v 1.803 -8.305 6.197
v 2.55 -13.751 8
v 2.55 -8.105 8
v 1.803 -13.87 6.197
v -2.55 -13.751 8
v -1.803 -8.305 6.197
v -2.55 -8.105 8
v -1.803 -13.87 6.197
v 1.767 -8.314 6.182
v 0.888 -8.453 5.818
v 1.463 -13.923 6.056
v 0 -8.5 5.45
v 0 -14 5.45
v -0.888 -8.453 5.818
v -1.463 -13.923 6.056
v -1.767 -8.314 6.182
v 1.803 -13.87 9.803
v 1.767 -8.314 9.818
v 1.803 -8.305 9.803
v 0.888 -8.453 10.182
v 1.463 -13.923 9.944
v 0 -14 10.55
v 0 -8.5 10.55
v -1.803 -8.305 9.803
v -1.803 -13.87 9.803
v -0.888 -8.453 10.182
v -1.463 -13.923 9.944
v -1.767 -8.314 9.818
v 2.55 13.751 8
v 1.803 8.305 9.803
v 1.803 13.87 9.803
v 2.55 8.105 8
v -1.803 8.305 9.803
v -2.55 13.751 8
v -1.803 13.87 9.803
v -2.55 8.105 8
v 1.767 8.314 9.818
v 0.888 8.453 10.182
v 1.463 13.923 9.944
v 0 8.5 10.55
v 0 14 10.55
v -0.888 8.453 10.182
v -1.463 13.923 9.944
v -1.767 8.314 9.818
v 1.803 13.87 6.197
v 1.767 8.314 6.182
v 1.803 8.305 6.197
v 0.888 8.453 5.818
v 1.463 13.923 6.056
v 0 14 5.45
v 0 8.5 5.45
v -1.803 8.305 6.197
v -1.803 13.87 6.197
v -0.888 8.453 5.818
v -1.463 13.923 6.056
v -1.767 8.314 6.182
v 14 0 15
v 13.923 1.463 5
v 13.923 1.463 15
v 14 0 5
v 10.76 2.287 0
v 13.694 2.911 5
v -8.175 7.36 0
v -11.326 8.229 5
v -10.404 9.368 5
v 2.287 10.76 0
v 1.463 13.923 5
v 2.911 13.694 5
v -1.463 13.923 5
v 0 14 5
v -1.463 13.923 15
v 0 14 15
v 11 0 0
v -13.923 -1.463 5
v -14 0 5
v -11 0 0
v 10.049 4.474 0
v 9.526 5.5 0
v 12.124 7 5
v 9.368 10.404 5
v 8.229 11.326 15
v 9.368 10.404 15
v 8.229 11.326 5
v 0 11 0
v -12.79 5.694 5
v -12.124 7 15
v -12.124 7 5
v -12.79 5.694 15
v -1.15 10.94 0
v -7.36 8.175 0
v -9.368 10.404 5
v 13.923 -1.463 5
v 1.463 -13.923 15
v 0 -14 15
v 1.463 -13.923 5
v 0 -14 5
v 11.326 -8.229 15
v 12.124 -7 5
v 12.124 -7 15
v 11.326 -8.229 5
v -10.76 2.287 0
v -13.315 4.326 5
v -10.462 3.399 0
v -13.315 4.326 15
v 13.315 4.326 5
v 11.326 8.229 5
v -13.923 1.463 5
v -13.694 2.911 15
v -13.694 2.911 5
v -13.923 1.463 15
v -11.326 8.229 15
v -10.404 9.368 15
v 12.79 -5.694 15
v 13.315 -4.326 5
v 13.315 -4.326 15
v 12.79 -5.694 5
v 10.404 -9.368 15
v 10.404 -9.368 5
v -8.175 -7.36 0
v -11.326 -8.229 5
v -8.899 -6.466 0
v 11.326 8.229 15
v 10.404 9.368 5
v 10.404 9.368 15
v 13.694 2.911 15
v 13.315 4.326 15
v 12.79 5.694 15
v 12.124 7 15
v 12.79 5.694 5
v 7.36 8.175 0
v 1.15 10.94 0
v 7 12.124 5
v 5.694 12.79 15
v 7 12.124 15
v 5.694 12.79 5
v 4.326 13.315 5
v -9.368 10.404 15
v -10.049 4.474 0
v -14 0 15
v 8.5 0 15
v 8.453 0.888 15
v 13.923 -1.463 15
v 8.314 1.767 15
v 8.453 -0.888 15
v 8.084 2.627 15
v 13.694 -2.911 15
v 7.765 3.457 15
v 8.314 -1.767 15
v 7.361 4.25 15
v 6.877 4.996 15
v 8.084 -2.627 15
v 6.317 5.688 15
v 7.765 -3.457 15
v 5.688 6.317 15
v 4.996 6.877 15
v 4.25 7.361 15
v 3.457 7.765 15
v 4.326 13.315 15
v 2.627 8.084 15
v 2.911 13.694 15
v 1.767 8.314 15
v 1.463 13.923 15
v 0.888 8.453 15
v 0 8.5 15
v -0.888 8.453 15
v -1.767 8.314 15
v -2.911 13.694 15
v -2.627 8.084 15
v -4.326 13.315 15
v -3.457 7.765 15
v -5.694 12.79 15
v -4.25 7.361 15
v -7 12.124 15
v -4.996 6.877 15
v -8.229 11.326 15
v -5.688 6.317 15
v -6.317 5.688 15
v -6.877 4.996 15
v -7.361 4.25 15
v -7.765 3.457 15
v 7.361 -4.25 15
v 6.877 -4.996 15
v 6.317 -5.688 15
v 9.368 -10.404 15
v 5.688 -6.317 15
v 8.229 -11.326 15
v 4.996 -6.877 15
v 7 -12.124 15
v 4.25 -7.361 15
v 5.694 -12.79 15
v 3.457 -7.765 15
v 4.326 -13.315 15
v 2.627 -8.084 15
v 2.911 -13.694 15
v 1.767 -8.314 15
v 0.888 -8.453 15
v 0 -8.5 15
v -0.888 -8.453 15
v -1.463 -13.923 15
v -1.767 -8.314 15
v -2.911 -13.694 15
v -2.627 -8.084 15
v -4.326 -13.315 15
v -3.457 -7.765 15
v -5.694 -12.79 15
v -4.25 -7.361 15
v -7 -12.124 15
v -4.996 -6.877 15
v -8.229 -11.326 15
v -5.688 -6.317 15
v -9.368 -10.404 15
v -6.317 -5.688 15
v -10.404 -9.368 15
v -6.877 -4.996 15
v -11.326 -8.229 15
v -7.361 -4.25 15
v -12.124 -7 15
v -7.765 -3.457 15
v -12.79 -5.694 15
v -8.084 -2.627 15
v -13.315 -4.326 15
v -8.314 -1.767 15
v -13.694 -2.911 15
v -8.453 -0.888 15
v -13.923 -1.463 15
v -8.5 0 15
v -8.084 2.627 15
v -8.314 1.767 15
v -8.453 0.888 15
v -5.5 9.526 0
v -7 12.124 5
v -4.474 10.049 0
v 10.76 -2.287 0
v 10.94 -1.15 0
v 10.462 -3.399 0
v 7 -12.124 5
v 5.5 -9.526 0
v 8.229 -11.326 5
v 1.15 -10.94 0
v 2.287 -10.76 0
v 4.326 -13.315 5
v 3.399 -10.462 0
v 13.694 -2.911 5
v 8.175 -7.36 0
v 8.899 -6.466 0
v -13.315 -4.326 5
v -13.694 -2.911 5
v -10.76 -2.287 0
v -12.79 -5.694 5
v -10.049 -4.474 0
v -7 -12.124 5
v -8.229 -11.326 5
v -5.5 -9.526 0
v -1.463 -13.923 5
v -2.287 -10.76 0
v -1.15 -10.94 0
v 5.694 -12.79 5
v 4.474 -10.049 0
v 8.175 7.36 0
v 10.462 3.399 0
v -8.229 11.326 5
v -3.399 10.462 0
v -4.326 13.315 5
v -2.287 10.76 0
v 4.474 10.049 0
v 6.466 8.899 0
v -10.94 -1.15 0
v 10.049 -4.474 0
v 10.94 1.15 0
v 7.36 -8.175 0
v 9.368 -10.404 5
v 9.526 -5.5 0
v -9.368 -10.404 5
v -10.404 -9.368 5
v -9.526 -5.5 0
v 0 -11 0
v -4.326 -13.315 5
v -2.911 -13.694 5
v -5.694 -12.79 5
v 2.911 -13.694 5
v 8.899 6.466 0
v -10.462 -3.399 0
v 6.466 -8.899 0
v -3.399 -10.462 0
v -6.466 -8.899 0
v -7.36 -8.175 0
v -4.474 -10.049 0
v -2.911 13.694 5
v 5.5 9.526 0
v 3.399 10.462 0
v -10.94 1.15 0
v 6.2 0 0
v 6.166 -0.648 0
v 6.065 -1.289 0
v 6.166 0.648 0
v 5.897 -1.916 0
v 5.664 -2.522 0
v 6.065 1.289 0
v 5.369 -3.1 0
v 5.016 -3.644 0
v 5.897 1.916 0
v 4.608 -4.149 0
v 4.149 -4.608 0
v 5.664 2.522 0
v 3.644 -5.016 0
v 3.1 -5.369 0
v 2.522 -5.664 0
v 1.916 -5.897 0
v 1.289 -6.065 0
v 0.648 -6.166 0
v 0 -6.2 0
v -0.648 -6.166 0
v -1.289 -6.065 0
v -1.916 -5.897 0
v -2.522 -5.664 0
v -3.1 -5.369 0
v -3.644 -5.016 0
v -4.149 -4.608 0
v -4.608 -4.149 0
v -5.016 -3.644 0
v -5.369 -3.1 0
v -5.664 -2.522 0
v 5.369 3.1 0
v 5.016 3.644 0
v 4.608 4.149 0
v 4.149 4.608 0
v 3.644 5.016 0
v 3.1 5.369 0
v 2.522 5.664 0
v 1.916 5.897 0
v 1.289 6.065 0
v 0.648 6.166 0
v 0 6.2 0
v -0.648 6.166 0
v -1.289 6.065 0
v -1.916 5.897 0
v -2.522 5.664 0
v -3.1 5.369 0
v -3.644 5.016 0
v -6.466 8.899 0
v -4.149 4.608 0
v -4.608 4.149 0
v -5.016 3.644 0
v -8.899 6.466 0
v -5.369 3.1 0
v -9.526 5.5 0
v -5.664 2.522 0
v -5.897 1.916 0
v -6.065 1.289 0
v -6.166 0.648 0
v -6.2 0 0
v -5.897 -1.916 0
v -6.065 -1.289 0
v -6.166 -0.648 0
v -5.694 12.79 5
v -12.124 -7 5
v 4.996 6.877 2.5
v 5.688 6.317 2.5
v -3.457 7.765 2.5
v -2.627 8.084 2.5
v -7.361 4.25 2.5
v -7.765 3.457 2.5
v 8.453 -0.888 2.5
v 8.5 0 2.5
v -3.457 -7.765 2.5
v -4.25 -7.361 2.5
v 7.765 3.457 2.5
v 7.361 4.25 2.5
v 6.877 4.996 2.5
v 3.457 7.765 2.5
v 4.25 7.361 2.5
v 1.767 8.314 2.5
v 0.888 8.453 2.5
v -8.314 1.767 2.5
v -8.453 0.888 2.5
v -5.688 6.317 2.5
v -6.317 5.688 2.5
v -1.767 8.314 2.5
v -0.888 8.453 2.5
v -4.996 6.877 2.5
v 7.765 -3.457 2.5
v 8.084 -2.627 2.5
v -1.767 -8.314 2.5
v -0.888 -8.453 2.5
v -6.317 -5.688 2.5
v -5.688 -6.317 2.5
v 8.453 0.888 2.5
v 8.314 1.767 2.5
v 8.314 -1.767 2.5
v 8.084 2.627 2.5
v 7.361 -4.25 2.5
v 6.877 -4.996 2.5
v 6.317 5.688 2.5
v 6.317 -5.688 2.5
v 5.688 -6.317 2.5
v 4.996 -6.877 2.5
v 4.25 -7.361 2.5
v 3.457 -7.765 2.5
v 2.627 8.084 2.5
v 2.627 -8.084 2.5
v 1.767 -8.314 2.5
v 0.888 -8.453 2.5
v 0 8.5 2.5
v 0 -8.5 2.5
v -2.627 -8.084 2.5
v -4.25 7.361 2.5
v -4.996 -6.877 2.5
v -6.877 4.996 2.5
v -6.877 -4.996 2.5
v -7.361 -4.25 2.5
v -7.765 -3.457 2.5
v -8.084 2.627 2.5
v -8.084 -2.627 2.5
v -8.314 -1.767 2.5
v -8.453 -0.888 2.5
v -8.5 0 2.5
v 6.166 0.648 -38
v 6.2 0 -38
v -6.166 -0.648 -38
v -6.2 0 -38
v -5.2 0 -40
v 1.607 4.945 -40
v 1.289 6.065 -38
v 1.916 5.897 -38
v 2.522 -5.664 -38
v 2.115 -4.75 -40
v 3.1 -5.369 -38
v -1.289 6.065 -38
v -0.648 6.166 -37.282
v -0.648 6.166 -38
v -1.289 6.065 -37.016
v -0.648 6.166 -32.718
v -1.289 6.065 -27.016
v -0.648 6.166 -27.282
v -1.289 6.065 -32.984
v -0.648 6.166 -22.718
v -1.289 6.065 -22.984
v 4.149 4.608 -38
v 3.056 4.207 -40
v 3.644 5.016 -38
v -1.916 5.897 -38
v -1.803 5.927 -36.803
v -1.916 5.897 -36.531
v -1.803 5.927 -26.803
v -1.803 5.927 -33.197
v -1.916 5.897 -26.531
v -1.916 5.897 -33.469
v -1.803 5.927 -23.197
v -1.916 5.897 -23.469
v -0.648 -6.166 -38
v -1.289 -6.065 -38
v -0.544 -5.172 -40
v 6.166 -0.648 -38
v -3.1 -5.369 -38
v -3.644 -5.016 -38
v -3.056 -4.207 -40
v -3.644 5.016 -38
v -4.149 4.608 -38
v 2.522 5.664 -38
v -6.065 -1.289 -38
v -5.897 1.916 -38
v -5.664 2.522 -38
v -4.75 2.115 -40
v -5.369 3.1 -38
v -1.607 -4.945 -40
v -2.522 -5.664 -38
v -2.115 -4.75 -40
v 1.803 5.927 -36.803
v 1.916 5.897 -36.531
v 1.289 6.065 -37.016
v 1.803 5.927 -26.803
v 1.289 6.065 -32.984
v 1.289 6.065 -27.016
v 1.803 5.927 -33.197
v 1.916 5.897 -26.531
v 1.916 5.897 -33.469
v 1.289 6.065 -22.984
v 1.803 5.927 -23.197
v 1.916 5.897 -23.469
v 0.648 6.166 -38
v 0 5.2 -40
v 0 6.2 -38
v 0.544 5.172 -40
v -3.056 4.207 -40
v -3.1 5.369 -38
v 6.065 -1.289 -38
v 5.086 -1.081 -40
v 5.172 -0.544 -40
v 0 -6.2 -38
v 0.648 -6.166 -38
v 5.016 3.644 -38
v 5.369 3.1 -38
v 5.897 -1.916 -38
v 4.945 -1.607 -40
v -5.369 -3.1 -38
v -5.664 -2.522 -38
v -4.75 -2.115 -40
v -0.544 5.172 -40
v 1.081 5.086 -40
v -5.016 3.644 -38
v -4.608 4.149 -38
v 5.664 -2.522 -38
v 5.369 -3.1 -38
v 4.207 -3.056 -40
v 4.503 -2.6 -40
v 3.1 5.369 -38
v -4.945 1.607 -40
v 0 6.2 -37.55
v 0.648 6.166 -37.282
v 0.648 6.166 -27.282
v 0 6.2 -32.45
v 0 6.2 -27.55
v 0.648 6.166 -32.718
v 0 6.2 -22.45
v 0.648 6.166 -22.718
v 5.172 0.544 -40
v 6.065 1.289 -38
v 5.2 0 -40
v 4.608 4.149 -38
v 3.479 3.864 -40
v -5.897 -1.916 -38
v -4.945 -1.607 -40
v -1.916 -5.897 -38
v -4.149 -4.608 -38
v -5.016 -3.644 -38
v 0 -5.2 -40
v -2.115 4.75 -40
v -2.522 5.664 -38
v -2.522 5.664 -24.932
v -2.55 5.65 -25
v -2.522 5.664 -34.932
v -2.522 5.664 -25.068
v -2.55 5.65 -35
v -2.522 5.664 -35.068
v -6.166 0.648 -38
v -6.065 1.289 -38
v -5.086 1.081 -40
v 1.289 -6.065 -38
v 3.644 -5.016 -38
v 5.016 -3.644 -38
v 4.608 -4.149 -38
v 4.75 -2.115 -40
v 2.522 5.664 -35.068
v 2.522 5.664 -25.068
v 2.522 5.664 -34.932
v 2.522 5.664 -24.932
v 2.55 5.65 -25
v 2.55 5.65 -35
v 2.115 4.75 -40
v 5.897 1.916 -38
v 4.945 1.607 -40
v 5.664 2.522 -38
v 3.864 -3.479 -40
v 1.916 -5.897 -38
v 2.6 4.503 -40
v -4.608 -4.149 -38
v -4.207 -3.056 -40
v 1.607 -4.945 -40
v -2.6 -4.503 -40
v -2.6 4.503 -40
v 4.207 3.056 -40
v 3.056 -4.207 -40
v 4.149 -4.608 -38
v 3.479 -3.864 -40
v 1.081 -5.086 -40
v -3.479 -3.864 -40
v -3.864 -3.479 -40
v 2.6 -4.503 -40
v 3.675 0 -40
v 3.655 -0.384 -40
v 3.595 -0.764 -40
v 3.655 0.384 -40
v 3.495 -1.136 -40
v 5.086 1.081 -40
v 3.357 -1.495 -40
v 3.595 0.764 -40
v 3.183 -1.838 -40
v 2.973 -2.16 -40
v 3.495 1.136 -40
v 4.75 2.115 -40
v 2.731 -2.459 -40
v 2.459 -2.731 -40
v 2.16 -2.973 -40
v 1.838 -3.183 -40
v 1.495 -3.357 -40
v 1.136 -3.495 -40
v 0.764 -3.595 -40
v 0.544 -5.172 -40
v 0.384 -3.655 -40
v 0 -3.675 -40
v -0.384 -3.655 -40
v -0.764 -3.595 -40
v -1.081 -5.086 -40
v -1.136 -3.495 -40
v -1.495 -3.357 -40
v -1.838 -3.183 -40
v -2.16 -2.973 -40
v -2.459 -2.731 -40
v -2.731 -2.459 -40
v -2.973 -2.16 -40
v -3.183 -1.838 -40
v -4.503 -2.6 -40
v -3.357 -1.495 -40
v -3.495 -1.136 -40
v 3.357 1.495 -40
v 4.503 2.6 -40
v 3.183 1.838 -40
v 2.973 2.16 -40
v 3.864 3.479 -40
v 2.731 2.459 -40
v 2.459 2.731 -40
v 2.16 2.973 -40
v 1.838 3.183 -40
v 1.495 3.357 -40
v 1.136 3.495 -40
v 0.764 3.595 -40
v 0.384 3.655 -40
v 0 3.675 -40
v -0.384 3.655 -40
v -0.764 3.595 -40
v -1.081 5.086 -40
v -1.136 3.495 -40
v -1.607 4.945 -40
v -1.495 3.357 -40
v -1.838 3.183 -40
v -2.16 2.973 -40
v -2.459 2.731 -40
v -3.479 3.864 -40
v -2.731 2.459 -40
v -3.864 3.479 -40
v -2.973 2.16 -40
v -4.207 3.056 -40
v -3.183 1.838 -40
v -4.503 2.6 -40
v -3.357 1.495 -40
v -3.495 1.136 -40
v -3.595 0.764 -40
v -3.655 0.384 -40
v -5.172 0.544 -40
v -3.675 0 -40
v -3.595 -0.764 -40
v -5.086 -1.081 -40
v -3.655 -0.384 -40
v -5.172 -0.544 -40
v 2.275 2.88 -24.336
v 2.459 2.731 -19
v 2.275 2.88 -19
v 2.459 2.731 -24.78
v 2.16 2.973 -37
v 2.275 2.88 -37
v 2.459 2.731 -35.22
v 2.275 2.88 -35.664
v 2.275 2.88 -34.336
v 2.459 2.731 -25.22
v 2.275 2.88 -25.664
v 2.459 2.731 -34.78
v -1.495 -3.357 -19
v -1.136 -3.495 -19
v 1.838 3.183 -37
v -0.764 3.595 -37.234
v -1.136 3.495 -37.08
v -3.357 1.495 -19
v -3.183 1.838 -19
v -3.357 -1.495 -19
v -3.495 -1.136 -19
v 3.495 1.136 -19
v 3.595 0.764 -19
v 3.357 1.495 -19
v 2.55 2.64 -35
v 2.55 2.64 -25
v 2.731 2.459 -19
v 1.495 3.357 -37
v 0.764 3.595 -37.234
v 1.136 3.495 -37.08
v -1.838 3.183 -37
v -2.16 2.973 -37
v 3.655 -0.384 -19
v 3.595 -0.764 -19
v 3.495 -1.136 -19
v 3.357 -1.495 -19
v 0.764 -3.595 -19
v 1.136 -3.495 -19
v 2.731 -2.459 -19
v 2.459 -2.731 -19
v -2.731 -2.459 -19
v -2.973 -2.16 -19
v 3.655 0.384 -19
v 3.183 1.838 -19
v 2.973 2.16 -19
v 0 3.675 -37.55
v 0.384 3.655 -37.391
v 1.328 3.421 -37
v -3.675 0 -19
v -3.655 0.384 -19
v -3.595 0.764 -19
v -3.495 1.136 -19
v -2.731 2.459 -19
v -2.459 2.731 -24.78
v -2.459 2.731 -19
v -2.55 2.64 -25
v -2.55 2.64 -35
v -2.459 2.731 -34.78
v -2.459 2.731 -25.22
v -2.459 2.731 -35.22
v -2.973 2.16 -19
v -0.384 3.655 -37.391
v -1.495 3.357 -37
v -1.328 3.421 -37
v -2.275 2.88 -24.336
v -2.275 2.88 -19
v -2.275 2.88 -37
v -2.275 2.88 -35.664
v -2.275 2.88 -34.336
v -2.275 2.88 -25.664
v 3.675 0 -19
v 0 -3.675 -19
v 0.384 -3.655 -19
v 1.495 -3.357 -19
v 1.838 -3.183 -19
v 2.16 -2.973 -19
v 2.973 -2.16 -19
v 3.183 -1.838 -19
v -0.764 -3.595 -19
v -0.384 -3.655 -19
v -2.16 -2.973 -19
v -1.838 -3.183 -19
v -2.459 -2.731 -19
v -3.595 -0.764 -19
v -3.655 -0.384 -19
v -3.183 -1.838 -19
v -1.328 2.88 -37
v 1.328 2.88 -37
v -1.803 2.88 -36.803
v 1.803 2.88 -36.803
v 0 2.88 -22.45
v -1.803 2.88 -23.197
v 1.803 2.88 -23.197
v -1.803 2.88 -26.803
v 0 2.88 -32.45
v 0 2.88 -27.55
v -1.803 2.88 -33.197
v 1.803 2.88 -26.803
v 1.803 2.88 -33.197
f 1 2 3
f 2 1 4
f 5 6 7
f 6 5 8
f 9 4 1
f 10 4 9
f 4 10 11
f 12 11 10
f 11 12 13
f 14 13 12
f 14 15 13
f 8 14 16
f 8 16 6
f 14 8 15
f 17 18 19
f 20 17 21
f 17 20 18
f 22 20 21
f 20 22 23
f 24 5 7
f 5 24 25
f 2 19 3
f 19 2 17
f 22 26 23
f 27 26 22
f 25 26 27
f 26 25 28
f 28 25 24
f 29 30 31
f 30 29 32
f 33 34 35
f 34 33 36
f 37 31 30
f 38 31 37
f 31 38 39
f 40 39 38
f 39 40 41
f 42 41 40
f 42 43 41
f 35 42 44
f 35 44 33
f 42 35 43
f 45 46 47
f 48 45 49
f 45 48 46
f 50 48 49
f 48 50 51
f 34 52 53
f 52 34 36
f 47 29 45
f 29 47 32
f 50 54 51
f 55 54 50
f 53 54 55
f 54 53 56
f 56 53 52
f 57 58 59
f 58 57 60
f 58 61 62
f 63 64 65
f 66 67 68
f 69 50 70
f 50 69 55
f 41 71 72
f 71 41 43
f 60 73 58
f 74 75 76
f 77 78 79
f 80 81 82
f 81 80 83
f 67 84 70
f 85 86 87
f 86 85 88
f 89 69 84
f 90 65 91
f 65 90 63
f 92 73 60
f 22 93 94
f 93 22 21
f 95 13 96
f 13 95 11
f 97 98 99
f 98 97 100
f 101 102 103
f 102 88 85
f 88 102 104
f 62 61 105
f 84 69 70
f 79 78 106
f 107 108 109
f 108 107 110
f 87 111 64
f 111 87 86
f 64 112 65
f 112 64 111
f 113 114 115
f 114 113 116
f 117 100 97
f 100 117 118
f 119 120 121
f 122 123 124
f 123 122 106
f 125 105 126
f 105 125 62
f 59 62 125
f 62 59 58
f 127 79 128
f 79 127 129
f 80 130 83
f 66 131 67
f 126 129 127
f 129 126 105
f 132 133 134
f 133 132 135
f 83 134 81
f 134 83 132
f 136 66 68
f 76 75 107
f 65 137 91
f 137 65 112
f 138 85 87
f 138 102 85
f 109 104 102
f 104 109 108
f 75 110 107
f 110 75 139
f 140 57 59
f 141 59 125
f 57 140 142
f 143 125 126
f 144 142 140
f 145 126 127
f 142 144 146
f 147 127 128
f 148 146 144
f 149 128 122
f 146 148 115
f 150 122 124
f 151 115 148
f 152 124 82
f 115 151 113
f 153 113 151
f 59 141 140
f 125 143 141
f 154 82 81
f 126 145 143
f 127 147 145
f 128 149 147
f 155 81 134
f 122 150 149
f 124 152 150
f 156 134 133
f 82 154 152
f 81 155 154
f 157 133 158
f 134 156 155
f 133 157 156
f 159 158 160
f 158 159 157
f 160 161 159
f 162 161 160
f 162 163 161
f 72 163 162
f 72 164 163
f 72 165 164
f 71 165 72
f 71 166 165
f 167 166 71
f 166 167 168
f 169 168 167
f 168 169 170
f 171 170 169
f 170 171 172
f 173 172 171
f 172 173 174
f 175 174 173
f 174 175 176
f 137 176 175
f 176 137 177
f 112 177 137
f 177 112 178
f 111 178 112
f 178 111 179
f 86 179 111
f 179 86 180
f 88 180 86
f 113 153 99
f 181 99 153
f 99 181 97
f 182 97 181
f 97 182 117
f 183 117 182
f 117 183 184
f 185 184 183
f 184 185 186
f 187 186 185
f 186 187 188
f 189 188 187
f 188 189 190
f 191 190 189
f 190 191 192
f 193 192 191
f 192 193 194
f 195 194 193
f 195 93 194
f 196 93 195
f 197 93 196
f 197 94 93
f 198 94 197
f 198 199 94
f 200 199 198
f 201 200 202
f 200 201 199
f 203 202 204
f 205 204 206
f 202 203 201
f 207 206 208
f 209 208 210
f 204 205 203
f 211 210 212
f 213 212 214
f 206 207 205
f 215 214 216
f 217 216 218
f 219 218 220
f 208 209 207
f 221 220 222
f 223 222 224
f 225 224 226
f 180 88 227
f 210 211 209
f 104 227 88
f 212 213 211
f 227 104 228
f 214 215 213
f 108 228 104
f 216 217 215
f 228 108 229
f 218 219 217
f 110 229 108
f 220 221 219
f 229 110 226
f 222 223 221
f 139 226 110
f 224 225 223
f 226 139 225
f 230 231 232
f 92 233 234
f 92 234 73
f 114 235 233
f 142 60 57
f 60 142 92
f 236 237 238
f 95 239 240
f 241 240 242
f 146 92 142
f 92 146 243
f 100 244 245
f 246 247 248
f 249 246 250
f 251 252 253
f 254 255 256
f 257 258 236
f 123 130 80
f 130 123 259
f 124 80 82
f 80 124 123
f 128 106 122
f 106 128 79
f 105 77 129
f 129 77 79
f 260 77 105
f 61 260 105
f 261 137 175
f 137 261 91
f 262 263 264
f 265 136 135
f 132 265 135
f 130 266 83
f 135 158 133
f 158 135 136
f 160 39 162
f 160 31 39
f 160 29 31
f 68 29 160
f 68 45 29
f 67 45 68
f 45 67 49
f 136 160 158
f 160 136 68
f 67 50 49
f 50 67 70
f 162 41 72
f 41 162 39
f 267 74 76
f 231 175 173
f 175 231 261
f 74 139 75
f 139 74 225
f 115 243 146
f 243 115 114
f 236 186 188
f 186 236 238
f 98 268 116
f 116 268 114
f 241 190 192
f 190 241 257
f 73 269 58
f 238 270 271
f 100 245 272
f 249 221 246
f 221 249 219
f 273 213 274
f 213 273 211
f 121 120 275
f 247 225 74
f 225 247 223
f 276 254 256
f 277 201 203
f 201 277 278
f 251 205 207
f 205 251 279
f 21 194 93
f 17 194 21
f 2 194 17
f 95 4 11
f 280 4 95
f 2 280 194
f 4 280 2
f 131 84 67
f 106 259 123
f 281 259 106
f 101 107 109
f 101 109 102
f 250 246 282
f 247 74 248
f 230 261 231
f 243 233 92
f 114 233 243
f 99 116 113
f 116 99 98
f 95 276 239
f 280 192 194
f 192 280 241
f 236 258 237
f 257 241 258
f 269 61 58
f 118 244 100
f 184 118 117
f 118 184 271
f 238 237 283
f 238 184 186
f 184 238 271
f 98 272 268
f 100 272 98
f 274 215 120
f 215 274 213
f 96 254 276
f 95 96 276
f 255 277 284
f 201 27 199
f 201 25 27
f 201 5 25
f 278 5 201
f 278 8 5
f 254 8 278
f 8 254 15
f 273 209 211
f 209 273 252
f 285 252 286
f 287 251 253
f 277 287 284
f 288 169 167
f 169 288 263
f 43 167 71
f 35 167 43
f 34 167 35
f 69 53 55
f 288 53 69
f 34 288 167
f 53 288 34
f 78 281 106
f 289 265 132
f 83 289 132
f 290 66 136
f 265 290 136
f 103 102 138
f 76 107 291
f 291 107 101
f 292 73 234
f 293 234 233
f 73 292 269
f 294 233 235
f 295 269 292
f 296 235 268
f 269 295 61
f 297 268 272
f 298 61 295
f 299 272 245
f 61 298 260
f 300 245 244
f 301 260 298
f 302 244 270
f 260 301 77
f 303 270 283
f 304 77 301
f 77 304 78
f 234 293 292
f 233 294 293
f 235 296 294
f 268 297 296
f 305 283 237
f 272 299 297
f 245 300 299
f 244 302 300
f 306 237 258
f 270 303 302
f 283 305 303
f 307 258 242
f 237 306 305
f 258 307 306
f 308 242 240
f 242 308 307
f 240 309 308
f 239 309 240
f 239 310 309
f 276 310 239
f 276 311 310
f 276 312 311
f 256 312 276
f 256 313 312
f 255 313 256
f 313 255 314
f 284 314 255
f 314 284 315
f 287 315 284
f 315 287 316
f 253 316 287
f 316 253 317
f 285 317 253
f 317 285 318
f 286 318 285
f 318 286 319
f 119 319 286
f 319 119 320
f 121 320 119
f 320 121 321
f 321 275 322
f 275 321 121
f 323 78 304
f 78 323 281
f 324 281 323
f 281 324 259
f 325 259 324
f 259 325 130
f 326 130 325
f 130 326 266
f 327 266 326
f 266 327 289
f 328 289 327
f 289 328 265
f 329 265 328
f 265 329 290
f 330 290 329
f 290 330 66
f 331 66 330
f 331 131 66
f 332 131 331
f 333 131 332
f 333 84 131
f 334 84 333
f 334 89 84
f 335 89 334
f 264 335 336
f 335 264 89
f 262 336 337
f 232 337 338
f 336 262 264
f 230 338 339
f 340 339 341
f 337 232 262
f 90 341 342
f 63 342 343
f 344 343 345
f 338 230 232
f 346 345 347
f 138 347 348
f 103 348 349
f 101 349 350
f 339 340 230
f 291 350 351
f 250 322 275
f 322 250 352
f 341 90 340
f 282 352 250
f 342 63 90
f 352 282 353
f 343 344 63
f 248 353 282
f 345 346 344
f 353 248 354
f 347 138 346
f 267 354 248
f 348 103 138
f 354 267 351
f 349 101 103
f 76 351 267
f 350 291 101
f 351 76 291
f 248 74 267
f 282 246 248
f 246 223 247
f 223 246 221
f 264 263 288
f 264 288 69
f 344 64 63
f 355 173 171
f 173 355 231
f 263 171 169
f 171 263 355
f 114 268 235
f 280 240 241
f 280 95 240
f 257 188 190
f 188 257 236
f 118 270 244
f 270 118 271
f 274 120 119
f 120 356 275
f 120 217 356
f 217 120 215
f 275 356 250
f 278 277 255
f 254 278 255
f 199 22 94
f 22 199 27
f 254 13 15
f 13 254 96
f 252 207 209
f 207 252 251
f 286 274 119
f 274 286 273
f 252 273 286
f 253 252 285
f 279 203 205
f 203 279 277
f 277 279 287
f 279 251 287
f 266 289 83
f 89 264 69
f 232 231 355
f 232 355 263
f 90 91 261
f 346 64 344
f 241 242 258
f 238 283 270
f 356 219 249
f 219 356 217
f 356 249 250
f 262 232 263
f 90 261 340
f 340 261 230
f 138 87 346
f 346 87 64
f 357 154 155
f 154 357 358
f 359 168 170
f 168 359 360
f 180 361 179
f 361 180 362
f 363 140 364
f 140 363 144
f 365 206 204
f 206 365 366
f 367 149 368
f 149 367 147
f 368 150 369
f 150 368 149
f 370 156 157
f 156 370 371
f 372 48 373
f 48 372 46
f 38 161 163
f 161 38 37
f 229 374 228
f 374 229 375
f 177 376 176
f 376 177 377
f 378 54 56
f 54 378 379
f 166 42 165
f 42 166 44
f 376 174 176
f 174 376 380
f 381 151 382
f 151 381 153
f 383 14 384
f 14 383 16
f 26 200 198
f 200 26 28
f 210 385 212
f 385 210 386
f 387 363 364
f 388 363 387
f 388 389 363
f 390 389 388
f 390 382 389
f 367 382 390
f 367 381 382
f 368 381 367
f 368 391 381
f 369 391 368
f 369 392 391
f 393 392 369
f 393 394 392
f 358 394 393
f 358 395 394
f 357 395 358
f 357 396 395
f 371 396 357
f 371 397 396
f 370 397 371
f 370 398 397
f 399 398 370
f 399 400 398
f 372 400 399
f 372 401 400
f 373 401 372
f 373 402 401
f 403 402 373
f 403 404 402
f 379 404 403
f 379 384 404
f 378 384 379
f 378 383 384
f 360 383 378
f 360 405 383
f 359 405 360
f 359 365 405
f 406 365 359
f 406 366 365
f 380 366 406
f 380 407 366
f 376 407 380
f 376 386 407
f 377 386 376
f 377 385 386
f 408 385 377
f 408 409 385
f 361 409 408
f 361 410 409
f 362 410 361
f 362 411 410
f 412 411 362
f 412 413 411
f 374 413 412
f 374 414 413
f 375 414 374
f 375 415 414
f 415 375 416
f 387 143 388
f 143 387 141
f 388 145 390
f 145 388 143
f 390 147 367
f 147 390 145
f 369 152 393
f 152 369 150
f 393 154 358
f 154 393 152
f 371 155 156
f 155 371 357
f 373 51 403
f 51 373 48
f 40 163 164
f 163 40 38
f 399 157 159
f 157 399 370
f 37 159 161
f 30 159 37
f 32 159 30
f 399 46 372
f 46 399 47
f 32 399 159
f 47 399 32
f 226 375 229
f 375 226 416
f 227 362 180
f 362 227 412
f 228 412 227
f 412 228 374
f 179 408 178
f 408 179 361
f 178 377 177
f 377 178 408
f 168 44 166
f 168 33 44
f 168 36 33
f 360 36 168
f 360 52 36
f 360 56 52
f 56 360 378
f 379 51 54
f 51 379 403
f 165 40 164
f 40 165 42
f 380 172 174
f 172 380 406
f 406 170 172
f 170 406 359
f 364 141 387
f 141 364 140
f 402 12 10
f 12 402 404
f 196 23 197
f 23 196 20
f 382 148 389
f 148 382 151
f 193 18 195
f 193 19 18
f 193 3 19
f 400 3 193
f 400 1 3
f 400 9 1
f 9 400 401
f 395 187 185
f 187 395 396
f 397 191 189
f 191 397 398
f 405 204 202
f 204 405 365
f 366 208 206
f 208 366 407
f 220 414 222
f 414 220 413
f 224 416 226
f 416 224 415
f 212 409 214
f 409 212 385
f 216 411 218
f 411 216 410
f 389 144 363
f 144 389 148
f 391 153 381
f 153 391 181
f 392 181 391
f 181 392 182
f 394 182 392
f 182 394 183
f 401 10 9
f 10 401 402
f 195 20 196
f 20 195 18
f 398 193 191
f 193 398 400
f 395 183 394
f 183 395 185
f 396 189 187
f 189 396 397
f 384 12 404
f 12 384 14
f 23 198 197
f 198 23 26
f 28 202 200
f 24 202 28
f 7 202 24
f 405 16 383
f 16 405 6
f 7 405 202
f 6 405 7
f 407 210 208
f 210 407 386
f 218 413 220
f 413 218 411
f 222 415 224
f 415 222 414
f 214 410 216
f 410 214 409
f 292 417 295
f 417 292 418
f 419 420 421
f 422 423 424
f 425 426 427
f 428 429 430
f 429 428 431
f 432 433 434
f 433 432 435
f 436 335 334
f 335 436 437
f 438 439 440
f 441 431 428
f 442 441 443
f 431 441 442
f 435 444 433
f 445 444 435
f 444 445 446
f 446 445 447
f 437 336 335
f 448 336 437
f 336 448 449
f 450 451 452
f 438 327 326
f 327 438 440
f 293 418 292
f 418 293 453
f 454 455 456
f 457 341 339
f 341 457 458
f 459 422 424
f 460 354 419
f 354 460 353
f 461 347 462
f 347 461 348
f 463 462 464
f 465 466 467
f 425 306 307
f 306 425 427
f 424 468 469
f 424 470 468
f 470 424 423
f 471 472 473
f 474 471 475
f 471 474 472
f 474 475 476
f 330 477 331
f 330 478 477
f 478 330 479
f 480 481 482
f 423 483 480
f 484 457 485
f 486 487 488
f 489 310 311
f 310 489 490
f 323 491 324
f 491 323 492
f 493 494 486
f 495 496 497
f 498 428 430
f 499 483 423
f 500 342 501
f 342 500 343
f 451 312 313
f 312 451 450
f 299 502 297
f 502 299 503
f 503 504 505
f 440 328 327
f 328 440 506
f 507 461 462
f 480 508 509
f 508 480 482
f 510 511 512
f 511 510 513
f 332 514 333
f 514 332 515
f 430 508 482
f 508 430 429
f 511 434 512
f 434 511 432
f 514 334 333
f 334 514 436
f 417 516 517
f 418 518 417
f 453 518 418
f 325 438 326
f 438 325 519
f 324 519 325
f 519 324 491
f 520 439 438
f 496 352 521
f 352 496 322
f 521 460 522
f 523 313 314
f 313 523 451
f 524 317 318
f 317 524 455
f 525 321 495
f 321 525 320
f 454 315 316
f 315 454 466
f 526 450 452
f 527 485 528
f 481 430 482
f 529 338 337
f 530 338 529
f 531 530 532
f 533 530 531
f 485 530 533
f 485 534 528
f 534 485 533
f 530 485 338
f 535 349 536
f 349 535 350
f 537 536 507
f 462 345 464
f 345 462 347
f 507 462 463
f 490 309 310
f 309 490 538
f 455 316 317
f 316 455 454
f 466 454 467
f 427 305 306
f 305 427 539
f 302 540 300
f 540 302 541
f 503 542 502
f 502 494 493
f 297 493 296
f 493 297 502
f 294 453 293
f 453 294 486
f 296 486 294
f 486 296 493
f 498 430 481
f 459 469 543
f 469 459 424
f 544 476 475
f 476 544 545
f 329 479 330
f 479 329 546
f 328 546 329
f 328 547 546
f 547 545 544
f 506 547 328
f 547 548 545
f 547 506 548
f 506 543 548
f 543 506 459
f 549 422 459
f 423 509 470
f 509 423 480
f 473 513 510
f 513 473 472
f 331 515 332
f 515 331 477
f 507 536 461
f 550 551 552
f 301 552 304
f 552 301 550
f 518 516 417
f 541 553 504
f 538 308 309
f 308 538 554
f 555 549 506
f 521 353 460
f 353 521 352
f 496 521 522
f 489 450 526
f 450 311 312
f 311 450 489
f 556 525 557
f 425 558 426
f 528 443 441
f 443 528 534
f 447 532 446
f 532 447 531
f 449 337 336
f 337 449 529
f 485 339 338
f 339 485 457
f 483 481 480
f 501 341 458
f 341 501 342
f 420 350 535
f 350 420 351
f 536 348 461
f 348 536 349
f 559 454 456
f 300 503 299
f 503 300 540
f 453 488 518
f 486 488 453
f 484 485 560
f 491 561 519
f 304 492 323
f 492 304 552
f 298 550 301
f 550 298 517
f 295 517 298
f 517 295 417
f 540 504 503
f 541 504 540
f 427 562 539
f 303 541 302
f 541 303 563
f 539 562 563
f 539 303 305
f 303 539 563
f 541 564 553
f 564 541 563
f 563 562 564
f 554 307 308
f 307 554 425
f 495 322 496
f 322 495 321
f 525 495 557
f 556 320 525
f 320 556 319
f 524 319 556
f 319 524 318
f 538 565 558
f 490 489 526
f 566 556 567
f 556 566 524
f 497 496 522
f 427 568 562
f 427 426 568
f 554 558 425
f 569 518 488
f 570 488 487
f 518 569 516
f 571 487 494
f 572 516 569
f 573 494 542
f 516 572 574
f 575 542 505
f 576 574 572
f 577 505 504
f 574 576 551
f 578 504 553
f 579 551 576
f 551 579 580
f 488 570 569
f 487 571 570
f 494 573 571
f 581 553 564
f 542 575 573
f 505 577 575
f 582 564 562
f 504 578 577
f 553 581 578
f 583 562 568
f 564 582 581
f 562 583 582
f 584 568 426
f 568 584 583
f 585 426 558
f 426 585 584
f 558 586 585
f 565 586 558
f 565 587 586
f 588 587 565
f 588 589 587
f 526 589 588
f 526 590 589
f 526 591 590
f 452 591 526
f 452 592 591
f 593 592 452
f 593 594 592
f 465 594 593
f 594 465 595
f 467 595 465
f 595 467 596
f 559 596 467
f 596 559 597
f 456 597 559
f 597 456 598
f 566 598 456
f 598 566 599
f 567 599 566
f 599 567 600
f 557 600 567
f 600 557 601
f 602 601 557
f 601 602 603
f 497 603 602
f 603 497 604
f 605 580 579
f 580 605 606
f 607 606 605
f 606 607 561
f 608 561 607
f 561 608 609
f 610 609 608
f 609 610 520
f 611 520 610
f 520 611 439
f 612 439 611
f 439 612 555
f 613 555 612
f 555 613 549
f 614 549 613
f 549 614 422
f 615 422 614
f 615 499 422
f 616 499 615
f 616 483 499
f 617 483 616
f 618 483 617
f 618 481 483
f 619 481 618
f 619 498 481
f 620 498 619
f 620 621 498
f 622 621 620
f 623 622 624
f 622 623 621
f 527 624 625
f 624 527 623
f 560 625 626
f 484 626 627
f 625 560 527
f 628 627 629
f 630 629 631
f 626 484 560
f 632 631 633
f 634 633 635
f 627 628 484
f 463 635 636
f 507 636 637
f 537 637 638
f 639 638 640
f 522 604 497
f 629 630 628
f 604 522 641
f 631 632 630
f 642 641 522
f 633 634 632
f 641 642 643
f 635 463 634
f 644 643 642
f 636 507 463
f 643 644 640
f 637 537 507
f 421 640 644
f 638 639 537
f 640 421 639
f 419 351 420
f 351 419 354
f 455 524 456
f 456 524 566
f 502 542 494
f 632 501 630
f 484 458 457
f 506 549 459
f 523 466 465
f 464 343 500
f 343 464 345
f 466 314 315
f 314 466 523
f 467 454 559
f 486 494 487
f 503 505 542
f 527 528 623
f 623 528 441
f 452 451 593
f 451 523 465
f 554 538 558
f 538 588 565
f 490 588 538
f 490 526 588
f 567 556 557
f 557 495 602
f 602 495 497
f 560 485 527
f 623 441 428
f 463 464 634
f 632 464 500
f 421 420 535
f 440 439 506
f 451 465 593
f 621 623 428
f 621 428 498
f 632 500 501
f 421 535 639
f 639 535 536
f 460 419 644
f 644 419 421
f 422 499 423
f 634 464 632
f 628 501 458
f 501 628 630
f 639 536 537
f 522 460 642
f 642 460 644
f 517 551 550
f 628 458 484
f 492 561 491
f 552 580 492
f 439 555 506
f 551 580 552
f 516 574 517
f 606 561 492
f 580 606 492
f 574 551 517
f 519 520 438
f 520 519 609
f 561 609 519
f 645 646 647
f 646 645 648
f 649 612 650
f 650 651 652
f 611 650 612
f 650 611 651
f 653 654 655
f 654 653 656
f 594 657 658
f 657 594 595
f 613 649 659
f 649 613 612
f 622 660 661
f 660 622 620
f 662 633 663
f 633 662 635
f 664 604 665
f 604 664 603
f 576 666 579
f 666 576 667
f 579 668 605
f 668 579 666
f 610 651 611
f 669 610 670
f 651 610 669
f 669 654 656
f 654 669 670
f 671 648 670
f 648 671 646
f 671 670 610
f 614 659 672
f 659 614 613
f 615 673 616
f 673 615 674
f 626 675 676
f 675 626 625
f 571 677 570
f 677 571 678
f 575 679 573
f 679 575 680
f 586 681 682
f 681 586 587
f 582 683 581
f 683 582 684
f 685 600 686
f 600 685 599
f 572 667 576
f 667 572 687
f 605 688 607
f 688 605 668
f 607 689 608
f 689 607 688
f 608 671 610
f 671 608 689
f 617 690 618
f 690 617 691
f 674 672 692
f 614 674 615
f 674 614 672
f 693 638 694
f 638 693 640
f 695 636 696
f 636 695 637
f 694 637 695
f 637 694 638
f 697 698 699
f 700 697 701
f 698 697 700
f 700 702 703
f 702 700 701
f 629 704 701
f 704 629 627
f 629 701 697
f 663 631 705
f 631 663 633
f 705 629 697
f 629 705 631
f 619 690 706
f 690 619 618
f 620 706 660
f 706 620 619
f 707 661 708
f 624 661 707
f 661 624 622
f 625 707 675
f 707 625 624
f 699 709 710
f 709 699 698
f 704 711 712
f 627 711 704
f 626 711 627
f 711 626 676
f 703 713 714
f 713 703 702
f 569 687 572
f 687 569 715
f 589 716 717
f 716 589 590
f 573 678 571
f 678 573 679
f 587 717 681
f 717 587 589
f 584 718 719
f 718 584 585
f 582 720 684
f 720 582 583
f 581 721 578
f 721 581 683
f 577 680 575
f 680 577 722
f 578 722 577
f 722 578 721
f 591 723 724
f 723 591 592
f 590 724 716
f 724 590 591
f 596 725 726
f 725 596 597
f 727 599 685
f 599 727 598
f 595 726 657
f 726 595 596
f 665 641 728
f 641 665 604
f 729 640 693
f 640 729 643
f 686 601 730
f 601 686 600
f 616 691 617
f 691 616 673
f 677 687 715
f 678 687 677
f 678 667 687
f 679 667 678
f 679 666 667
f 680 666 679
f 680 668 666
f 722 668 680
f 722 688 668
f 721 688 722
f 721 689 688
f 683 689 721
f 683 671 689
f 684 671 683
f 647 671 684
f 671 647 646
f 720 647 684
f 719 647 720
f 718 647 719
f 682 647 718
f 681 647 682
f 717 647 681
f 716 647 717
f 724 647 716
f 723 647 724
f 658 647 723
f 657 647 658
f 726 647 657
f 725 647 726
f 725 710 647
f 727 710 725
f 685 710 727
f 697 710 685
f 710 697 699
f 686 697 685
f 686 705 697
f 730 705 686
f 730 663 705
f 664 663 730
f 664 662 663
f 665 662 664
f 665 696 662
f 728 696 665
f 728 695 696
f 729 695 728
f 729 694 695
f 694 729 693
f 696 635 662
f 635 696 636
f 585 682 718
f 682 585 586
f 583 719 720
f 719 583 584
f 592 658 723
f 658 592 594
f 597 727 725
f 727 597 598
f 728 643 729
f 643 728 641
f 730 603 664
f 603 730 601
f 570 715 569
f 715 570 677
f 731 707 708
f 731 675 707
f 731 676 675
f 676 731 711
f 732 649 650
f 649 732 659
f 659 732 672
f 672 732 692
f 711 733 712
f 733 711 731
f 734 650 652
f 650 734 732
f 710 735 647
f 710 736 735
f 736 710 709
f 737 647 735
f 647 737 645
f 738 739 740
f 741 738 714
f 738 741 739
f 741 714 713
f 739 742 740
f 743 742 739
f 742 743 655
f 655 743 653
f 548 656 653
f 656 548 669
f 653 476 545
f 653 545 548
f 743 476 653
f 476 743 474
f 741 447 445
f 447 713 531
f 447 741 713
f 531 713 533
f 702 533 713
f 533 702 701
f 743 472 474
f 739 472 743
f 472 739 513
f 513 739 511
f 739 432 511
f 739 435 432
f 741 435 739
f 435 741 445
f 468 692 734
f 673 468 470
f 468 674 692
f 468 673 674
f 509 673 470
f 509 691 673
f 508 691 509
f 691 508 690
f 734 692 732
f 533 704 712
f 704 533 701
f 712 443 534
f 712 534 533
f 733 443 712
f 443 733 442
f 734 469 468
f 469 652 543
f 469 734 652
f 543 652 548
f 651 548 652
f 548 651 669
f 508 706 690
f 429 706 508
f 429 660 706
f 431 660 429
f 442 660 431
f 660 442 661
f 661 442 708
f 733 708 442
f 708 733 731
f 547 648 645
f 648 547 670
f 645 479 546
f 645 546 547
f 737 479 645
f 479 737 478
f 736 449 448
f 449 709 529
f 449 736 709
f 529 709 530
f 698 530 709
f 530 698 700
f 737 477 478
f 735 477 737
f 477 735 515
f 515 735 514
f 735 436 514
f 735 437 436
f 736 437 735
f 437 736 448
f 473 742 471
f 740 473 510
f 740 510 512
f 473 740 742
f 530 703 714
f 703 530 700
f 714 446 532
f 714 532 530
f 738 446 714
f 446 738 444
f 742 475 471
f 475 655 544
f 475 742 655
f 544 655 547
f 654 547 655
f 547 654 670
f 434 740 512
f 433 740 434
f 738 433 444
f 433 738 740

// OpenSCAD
// file: beam.scad
// Misumi Beam
module misumibeam(size1=15, size2=15, length=100, extra=0.1) {
   difference() {
      cube([size1+extra, size2+extra, length], center=true);
      for (a = [0:180:180]) rotate([0, 0, a]) {
         translate([size1/2, 0, 0]) {
          //  % cube([size1/2, 3, length+1], center=true);
			minkowski() {
               cube([size1/2-(extra+1), size1/6-extra, length+1], center=true);
               cylinder(r=0.5, h=1, center=true);
			} 
        }
      }
      for (a = [0:90:270]) rotate([0, 0, a]) {
         translate([size2/2, 0, 0]) {
          //  % cube([size1/2, 3, length+1], center=true);
			minkowski() {
               cube([size1/2-(extra+1), size1/6-extra, length+1], center=true);
               cylinder(r=0.5, h=1, center=true);
			} 
        }
      }
   }
}

# misumibeam(15, 15, 300);
// file: nema17.scad
include <configuration.scad>;

// NEMA17 stepper motor

module stepper_motor(length=47.5, shaft_radius=5.00/2) {
   intersection() {
      cube([42.2, length, 42.2], center=true);
      rotate([90, 0, 0])
      cylinder(r=25.5, h=length+1, center=true);
   }
   translate([0, -length/2, 0]) {
// drive shaft
		rotate([90, 0, 0]) {
		 cylinder(r1=11, r2=11, h=2, $fn=40);
		 cylinder(r=shaft_radius, h=25);
		}
// mounting bolts
      for (a = [0:90:360]) rotate([0, a, 0]) {
         translate([15.5, 0, 15.5]) rotate([90, 0, 0])
         cylinder(r=m3_major_radius, h=10,  $fn=30);
      }
   }
}

module stepper_motor_boolean(length=47.5, shaft_radius=7.00/2) {
   intersection() {
      cube([42.2, length, 42.2], center=true);
      rotate([90, 0, 0])
      cylinder(r=25.5, h=length+1, center=true);
   }
   translate([0, -length/2, 0]) {
// drive shaft
		rotate([90, 0, 0]) {
		 cylinder(r1=12+extra_boolean, r2=11+extra_boolean, h=2, $fn=40);
		 cylinder(r=shaft_radius, h=25, $fn=8);
		}
// mounting bolts
      for (a = [0:90:360]) rotate([0, a, 0]) {
         translate([15.5, 0, 15.5]) rotate([90, 0, 0])
         cylinder(r=m3_major_radius+extra_radius, h=10,  $fn=8);
      }
   }
}

//# stepper_motor();
# stepper_motor_boolean();
// file: metric_fastners.scad
/*
 *  OpenSCAD Metric Fastners Library (www.openscad.org)
 *  Copyright (C) 2010-2011  Giles Bathgate
 *
 *  This program is free software; you can redistribute it and/or modify
 *  it under the terms of the GNU General Public License as published by
 *  the Free Software Foundation; either version 3 of the License,
 *  LGPL version 2.1, or (at your option) any later version of the GPL.
 *
 *  This program is distributed in the hope that it will be useful,
 *  but WITHOUT ANY WARRANTY; without even the implied warranty of
 *  MERCHANTABILITY or FITNESS FOR A PARTICULAR PURPOSE.  See the
 *  GNU General Public License for more details.
 *
 *  You should have received a copy of the GNU General Public License
 *  along with this program; if not, write to the Free Software
 *  Foundation, Inc., 59 Temple Place, Suite 330, Boston, MA 02111-1307 USA
 *
*/

$fn=50;
apply_chamfer=false;

// M3 Mesurements
m3_minor_radius = 2.50/2;
m3_major_radius = 3.00/2;
m3_head_radius = 5.50/2;
m3_nut_radius = 6.20/2;

// M4 Mesurements
m4_minor_radius = 3.30/2;
m4_major_radius = 4.00/2;
m4_head_radius = 7.00/2;
m4_nut_radius = 8.26/2;

// M5 Mesurements
m5_minor_radius = 4.20/2;
m5_major_radius = 5.00/2;
m5_head_radius = 8.50/2;
m5_nut_radius = 10.33/2;

// M6 Mesurements
m6_minor_radius = 5.00/2;
m6_major_radius = 6.00/2;
m6_head_radius = 10.00/2;
m6_nut_radius = 12.40/2;


module cap_bolt(dia,len)
{
	e=1.5*dia;
	h1=1.25*dia;
	cylinder(r=dia/2,h=len);
	translate([0,0,-h1]) cylinder(r=e/2,h=h1);
}

module cap_bolt_boolean(dia,len,fn=8)
{
	e=1.87*dia;
	h1=2*dia;
	cylinder(r=dia/2,h=len,$fn=fn);
	translate([0,0,-h1+0.05]) cylinder(r2=e/2+0.15,r1=e/2+0.3,h=h1,$fn=fn);
}

module csk_bolt(dia,len)
{
	h1=0.6*dia;
	h2=len-h1;
	cylinder(r=dia/2,h=h2);
	cylinder(r1=dia,r2=dia/2,h=h1);
}

module washer(dia)
{
	t=0.1*dia;
	difference()
	{
		cylinder(r=dia,h=t);
		translate([0,0,-t/2])cylinder(r=dia/2,h=t*2);
	}
}

module flat_nut(dia)
{
	m=0.8*dia;
	e=2.066*dia;
	c=0.2*dia;
	difference()
	{
		cylinder(r=e/2,h=m,$fn=6);
		translate([0,0,-m/2])cylinder(r=dia/2,h=m*2);
		if(apply_chamfer)
		    translate([0,0,c])cylinder_chamfer(e/2,c);
	}
}

module flat_nut_boolean(dia)
{
	m=0.8*dia;
	e=2.066*dia;
	c=0.2*dia;
	difference()
	{
		cylinder(r=e/2,h=m,$fn=6);
		if(apply_chamfer)
		    translate([0,0,c])cylinder_chamfer(e/2,c);
	}
}

module bolt(dia,len)
{
	e=1.8*dia;
	k=0.7*dia;
	c=0.2*dia;
	difference()
	{
		cylinder(r=e/2,h=k,$fn=6);
		if(apply_chamfer)
		    translate([0,0,c])cylinder_chamfer(e/2,c);
	}

	cylinder(r=dia/2,h=len);

}

module cylinder_chamfer(r1,r2)
{
	t=r1-r2;
	p=r2*2;
	rotate_extrude()
	difference()
	{
		translate([t,-p])square([p,p]);
		translate([t,0])circle(r2);
	}
}

module chamfer(len,r)
{
	p=r*2;
	linear_extrude(height=len)
	difference()
	{
		square([p,p]);
		circle(r);
	}
}

union()
{
//cap_bolt(3,15);
//cap_bolt_boolean(3,15,30);
//csk_bolt(3,14);
//washer(3);
//flat_nut_boolean(3);
//bolt(4,14);
//cylinder_chamfer(8,1);
//chamfer(10,2);
}
// file: configuration.scad
// Delta-Six 3D Printer 
// Created by Sage Merrill
// Released on Openbuilds.com
// Based on orginal design by Johann C. Rocholl (Kossel Printer)
// License = Attribution Share Alike - CC BY SA


include <metric_fastners.scad>;
use <nema17.scad>;
use <beam.scad>;
use <timing_belts.scad>;

$fn=20;

// Increase this if your slicer or printer makes the holes too small.
extra_radius = 0.10;
extra_boolean = 0.15;

// Delta Parameters
global_delta_arm_seperation = 55;
global_effector_bore_radius = 21;
global_mounting_hole_radius = 27;

// M5 Hardware
m5_bolt = m5_major_radius*2;
m5_bolt_boolean = m5_bolt+extra_radius;

// M3 Hardware
m3_bolt = m3_major_radius*2;
m3_bolt_boolean = m3_bolt+extra_radius;

// NEMA17 stepper motor
motor_length = 47.5;
motor_shaft_radius= 5.00/2;


module slot_fill(length = 20) {
	difference() {
		translate([0, 0, 0]) rotate([0, 0, 0])
		 cylinder(r=4.5, h=length, center=true,  $fn=4);	

//plane sides
		translate([-3.8, 0, 0]) rotate([0, 0, 0])
		 cube([4, 20, length*2], center=true);
		translate([3, 0, 0]) rotate([0, 0, 0])
		 cube([6, 20, length*2], center=true);
	}
}



height = 21;
thickness = 5;
motor_offset = 48.7;
triangle_side = 316;
printer_height = 680;
delta_radius = 300;
// main file
include <configuration.scad>;

module end_cap1(){ 
  union(){
    difference() {
      hull(){
        translate([0,0,5]) cylinder(r=14, h=10, center=false, $fn=60);
        cylinder(r=11, h=15, center=false, $fn=60);
      }
      translate([0,0,10]) cylinder(r=8.50, h=15, center=true, $fn=60);
      for(x =[-1, 1]) translate([0, 25*x, 8]) rotate([90*x, 0, 0]) cap_bolt_boolean(m5_bolt_boolean, 20);
    }
    difference(){
      union(){
        difference(){
          hull(){
            translate([0,0,-18]) cylinder(r=6.20, h=40, center=true, $fn=60);
            translate([0,0,-21]) cylinder(r=5.20, h=38, center=true, $fn=60);
          }
          translate([0,0,-30]) cylinder(r=3.675, h=22, center=true, $fn=60);
        }
        translate([-3.5,2.88,-37]) cube([7,2,25]);
      }
      for(z =[0, 10]) translate([0, 20, -35+z]) rotate([90, 0, 0]) cap_bolt_boolean(m5_bolt_boolean, 20);
    }
  }
}
end_cap1();
